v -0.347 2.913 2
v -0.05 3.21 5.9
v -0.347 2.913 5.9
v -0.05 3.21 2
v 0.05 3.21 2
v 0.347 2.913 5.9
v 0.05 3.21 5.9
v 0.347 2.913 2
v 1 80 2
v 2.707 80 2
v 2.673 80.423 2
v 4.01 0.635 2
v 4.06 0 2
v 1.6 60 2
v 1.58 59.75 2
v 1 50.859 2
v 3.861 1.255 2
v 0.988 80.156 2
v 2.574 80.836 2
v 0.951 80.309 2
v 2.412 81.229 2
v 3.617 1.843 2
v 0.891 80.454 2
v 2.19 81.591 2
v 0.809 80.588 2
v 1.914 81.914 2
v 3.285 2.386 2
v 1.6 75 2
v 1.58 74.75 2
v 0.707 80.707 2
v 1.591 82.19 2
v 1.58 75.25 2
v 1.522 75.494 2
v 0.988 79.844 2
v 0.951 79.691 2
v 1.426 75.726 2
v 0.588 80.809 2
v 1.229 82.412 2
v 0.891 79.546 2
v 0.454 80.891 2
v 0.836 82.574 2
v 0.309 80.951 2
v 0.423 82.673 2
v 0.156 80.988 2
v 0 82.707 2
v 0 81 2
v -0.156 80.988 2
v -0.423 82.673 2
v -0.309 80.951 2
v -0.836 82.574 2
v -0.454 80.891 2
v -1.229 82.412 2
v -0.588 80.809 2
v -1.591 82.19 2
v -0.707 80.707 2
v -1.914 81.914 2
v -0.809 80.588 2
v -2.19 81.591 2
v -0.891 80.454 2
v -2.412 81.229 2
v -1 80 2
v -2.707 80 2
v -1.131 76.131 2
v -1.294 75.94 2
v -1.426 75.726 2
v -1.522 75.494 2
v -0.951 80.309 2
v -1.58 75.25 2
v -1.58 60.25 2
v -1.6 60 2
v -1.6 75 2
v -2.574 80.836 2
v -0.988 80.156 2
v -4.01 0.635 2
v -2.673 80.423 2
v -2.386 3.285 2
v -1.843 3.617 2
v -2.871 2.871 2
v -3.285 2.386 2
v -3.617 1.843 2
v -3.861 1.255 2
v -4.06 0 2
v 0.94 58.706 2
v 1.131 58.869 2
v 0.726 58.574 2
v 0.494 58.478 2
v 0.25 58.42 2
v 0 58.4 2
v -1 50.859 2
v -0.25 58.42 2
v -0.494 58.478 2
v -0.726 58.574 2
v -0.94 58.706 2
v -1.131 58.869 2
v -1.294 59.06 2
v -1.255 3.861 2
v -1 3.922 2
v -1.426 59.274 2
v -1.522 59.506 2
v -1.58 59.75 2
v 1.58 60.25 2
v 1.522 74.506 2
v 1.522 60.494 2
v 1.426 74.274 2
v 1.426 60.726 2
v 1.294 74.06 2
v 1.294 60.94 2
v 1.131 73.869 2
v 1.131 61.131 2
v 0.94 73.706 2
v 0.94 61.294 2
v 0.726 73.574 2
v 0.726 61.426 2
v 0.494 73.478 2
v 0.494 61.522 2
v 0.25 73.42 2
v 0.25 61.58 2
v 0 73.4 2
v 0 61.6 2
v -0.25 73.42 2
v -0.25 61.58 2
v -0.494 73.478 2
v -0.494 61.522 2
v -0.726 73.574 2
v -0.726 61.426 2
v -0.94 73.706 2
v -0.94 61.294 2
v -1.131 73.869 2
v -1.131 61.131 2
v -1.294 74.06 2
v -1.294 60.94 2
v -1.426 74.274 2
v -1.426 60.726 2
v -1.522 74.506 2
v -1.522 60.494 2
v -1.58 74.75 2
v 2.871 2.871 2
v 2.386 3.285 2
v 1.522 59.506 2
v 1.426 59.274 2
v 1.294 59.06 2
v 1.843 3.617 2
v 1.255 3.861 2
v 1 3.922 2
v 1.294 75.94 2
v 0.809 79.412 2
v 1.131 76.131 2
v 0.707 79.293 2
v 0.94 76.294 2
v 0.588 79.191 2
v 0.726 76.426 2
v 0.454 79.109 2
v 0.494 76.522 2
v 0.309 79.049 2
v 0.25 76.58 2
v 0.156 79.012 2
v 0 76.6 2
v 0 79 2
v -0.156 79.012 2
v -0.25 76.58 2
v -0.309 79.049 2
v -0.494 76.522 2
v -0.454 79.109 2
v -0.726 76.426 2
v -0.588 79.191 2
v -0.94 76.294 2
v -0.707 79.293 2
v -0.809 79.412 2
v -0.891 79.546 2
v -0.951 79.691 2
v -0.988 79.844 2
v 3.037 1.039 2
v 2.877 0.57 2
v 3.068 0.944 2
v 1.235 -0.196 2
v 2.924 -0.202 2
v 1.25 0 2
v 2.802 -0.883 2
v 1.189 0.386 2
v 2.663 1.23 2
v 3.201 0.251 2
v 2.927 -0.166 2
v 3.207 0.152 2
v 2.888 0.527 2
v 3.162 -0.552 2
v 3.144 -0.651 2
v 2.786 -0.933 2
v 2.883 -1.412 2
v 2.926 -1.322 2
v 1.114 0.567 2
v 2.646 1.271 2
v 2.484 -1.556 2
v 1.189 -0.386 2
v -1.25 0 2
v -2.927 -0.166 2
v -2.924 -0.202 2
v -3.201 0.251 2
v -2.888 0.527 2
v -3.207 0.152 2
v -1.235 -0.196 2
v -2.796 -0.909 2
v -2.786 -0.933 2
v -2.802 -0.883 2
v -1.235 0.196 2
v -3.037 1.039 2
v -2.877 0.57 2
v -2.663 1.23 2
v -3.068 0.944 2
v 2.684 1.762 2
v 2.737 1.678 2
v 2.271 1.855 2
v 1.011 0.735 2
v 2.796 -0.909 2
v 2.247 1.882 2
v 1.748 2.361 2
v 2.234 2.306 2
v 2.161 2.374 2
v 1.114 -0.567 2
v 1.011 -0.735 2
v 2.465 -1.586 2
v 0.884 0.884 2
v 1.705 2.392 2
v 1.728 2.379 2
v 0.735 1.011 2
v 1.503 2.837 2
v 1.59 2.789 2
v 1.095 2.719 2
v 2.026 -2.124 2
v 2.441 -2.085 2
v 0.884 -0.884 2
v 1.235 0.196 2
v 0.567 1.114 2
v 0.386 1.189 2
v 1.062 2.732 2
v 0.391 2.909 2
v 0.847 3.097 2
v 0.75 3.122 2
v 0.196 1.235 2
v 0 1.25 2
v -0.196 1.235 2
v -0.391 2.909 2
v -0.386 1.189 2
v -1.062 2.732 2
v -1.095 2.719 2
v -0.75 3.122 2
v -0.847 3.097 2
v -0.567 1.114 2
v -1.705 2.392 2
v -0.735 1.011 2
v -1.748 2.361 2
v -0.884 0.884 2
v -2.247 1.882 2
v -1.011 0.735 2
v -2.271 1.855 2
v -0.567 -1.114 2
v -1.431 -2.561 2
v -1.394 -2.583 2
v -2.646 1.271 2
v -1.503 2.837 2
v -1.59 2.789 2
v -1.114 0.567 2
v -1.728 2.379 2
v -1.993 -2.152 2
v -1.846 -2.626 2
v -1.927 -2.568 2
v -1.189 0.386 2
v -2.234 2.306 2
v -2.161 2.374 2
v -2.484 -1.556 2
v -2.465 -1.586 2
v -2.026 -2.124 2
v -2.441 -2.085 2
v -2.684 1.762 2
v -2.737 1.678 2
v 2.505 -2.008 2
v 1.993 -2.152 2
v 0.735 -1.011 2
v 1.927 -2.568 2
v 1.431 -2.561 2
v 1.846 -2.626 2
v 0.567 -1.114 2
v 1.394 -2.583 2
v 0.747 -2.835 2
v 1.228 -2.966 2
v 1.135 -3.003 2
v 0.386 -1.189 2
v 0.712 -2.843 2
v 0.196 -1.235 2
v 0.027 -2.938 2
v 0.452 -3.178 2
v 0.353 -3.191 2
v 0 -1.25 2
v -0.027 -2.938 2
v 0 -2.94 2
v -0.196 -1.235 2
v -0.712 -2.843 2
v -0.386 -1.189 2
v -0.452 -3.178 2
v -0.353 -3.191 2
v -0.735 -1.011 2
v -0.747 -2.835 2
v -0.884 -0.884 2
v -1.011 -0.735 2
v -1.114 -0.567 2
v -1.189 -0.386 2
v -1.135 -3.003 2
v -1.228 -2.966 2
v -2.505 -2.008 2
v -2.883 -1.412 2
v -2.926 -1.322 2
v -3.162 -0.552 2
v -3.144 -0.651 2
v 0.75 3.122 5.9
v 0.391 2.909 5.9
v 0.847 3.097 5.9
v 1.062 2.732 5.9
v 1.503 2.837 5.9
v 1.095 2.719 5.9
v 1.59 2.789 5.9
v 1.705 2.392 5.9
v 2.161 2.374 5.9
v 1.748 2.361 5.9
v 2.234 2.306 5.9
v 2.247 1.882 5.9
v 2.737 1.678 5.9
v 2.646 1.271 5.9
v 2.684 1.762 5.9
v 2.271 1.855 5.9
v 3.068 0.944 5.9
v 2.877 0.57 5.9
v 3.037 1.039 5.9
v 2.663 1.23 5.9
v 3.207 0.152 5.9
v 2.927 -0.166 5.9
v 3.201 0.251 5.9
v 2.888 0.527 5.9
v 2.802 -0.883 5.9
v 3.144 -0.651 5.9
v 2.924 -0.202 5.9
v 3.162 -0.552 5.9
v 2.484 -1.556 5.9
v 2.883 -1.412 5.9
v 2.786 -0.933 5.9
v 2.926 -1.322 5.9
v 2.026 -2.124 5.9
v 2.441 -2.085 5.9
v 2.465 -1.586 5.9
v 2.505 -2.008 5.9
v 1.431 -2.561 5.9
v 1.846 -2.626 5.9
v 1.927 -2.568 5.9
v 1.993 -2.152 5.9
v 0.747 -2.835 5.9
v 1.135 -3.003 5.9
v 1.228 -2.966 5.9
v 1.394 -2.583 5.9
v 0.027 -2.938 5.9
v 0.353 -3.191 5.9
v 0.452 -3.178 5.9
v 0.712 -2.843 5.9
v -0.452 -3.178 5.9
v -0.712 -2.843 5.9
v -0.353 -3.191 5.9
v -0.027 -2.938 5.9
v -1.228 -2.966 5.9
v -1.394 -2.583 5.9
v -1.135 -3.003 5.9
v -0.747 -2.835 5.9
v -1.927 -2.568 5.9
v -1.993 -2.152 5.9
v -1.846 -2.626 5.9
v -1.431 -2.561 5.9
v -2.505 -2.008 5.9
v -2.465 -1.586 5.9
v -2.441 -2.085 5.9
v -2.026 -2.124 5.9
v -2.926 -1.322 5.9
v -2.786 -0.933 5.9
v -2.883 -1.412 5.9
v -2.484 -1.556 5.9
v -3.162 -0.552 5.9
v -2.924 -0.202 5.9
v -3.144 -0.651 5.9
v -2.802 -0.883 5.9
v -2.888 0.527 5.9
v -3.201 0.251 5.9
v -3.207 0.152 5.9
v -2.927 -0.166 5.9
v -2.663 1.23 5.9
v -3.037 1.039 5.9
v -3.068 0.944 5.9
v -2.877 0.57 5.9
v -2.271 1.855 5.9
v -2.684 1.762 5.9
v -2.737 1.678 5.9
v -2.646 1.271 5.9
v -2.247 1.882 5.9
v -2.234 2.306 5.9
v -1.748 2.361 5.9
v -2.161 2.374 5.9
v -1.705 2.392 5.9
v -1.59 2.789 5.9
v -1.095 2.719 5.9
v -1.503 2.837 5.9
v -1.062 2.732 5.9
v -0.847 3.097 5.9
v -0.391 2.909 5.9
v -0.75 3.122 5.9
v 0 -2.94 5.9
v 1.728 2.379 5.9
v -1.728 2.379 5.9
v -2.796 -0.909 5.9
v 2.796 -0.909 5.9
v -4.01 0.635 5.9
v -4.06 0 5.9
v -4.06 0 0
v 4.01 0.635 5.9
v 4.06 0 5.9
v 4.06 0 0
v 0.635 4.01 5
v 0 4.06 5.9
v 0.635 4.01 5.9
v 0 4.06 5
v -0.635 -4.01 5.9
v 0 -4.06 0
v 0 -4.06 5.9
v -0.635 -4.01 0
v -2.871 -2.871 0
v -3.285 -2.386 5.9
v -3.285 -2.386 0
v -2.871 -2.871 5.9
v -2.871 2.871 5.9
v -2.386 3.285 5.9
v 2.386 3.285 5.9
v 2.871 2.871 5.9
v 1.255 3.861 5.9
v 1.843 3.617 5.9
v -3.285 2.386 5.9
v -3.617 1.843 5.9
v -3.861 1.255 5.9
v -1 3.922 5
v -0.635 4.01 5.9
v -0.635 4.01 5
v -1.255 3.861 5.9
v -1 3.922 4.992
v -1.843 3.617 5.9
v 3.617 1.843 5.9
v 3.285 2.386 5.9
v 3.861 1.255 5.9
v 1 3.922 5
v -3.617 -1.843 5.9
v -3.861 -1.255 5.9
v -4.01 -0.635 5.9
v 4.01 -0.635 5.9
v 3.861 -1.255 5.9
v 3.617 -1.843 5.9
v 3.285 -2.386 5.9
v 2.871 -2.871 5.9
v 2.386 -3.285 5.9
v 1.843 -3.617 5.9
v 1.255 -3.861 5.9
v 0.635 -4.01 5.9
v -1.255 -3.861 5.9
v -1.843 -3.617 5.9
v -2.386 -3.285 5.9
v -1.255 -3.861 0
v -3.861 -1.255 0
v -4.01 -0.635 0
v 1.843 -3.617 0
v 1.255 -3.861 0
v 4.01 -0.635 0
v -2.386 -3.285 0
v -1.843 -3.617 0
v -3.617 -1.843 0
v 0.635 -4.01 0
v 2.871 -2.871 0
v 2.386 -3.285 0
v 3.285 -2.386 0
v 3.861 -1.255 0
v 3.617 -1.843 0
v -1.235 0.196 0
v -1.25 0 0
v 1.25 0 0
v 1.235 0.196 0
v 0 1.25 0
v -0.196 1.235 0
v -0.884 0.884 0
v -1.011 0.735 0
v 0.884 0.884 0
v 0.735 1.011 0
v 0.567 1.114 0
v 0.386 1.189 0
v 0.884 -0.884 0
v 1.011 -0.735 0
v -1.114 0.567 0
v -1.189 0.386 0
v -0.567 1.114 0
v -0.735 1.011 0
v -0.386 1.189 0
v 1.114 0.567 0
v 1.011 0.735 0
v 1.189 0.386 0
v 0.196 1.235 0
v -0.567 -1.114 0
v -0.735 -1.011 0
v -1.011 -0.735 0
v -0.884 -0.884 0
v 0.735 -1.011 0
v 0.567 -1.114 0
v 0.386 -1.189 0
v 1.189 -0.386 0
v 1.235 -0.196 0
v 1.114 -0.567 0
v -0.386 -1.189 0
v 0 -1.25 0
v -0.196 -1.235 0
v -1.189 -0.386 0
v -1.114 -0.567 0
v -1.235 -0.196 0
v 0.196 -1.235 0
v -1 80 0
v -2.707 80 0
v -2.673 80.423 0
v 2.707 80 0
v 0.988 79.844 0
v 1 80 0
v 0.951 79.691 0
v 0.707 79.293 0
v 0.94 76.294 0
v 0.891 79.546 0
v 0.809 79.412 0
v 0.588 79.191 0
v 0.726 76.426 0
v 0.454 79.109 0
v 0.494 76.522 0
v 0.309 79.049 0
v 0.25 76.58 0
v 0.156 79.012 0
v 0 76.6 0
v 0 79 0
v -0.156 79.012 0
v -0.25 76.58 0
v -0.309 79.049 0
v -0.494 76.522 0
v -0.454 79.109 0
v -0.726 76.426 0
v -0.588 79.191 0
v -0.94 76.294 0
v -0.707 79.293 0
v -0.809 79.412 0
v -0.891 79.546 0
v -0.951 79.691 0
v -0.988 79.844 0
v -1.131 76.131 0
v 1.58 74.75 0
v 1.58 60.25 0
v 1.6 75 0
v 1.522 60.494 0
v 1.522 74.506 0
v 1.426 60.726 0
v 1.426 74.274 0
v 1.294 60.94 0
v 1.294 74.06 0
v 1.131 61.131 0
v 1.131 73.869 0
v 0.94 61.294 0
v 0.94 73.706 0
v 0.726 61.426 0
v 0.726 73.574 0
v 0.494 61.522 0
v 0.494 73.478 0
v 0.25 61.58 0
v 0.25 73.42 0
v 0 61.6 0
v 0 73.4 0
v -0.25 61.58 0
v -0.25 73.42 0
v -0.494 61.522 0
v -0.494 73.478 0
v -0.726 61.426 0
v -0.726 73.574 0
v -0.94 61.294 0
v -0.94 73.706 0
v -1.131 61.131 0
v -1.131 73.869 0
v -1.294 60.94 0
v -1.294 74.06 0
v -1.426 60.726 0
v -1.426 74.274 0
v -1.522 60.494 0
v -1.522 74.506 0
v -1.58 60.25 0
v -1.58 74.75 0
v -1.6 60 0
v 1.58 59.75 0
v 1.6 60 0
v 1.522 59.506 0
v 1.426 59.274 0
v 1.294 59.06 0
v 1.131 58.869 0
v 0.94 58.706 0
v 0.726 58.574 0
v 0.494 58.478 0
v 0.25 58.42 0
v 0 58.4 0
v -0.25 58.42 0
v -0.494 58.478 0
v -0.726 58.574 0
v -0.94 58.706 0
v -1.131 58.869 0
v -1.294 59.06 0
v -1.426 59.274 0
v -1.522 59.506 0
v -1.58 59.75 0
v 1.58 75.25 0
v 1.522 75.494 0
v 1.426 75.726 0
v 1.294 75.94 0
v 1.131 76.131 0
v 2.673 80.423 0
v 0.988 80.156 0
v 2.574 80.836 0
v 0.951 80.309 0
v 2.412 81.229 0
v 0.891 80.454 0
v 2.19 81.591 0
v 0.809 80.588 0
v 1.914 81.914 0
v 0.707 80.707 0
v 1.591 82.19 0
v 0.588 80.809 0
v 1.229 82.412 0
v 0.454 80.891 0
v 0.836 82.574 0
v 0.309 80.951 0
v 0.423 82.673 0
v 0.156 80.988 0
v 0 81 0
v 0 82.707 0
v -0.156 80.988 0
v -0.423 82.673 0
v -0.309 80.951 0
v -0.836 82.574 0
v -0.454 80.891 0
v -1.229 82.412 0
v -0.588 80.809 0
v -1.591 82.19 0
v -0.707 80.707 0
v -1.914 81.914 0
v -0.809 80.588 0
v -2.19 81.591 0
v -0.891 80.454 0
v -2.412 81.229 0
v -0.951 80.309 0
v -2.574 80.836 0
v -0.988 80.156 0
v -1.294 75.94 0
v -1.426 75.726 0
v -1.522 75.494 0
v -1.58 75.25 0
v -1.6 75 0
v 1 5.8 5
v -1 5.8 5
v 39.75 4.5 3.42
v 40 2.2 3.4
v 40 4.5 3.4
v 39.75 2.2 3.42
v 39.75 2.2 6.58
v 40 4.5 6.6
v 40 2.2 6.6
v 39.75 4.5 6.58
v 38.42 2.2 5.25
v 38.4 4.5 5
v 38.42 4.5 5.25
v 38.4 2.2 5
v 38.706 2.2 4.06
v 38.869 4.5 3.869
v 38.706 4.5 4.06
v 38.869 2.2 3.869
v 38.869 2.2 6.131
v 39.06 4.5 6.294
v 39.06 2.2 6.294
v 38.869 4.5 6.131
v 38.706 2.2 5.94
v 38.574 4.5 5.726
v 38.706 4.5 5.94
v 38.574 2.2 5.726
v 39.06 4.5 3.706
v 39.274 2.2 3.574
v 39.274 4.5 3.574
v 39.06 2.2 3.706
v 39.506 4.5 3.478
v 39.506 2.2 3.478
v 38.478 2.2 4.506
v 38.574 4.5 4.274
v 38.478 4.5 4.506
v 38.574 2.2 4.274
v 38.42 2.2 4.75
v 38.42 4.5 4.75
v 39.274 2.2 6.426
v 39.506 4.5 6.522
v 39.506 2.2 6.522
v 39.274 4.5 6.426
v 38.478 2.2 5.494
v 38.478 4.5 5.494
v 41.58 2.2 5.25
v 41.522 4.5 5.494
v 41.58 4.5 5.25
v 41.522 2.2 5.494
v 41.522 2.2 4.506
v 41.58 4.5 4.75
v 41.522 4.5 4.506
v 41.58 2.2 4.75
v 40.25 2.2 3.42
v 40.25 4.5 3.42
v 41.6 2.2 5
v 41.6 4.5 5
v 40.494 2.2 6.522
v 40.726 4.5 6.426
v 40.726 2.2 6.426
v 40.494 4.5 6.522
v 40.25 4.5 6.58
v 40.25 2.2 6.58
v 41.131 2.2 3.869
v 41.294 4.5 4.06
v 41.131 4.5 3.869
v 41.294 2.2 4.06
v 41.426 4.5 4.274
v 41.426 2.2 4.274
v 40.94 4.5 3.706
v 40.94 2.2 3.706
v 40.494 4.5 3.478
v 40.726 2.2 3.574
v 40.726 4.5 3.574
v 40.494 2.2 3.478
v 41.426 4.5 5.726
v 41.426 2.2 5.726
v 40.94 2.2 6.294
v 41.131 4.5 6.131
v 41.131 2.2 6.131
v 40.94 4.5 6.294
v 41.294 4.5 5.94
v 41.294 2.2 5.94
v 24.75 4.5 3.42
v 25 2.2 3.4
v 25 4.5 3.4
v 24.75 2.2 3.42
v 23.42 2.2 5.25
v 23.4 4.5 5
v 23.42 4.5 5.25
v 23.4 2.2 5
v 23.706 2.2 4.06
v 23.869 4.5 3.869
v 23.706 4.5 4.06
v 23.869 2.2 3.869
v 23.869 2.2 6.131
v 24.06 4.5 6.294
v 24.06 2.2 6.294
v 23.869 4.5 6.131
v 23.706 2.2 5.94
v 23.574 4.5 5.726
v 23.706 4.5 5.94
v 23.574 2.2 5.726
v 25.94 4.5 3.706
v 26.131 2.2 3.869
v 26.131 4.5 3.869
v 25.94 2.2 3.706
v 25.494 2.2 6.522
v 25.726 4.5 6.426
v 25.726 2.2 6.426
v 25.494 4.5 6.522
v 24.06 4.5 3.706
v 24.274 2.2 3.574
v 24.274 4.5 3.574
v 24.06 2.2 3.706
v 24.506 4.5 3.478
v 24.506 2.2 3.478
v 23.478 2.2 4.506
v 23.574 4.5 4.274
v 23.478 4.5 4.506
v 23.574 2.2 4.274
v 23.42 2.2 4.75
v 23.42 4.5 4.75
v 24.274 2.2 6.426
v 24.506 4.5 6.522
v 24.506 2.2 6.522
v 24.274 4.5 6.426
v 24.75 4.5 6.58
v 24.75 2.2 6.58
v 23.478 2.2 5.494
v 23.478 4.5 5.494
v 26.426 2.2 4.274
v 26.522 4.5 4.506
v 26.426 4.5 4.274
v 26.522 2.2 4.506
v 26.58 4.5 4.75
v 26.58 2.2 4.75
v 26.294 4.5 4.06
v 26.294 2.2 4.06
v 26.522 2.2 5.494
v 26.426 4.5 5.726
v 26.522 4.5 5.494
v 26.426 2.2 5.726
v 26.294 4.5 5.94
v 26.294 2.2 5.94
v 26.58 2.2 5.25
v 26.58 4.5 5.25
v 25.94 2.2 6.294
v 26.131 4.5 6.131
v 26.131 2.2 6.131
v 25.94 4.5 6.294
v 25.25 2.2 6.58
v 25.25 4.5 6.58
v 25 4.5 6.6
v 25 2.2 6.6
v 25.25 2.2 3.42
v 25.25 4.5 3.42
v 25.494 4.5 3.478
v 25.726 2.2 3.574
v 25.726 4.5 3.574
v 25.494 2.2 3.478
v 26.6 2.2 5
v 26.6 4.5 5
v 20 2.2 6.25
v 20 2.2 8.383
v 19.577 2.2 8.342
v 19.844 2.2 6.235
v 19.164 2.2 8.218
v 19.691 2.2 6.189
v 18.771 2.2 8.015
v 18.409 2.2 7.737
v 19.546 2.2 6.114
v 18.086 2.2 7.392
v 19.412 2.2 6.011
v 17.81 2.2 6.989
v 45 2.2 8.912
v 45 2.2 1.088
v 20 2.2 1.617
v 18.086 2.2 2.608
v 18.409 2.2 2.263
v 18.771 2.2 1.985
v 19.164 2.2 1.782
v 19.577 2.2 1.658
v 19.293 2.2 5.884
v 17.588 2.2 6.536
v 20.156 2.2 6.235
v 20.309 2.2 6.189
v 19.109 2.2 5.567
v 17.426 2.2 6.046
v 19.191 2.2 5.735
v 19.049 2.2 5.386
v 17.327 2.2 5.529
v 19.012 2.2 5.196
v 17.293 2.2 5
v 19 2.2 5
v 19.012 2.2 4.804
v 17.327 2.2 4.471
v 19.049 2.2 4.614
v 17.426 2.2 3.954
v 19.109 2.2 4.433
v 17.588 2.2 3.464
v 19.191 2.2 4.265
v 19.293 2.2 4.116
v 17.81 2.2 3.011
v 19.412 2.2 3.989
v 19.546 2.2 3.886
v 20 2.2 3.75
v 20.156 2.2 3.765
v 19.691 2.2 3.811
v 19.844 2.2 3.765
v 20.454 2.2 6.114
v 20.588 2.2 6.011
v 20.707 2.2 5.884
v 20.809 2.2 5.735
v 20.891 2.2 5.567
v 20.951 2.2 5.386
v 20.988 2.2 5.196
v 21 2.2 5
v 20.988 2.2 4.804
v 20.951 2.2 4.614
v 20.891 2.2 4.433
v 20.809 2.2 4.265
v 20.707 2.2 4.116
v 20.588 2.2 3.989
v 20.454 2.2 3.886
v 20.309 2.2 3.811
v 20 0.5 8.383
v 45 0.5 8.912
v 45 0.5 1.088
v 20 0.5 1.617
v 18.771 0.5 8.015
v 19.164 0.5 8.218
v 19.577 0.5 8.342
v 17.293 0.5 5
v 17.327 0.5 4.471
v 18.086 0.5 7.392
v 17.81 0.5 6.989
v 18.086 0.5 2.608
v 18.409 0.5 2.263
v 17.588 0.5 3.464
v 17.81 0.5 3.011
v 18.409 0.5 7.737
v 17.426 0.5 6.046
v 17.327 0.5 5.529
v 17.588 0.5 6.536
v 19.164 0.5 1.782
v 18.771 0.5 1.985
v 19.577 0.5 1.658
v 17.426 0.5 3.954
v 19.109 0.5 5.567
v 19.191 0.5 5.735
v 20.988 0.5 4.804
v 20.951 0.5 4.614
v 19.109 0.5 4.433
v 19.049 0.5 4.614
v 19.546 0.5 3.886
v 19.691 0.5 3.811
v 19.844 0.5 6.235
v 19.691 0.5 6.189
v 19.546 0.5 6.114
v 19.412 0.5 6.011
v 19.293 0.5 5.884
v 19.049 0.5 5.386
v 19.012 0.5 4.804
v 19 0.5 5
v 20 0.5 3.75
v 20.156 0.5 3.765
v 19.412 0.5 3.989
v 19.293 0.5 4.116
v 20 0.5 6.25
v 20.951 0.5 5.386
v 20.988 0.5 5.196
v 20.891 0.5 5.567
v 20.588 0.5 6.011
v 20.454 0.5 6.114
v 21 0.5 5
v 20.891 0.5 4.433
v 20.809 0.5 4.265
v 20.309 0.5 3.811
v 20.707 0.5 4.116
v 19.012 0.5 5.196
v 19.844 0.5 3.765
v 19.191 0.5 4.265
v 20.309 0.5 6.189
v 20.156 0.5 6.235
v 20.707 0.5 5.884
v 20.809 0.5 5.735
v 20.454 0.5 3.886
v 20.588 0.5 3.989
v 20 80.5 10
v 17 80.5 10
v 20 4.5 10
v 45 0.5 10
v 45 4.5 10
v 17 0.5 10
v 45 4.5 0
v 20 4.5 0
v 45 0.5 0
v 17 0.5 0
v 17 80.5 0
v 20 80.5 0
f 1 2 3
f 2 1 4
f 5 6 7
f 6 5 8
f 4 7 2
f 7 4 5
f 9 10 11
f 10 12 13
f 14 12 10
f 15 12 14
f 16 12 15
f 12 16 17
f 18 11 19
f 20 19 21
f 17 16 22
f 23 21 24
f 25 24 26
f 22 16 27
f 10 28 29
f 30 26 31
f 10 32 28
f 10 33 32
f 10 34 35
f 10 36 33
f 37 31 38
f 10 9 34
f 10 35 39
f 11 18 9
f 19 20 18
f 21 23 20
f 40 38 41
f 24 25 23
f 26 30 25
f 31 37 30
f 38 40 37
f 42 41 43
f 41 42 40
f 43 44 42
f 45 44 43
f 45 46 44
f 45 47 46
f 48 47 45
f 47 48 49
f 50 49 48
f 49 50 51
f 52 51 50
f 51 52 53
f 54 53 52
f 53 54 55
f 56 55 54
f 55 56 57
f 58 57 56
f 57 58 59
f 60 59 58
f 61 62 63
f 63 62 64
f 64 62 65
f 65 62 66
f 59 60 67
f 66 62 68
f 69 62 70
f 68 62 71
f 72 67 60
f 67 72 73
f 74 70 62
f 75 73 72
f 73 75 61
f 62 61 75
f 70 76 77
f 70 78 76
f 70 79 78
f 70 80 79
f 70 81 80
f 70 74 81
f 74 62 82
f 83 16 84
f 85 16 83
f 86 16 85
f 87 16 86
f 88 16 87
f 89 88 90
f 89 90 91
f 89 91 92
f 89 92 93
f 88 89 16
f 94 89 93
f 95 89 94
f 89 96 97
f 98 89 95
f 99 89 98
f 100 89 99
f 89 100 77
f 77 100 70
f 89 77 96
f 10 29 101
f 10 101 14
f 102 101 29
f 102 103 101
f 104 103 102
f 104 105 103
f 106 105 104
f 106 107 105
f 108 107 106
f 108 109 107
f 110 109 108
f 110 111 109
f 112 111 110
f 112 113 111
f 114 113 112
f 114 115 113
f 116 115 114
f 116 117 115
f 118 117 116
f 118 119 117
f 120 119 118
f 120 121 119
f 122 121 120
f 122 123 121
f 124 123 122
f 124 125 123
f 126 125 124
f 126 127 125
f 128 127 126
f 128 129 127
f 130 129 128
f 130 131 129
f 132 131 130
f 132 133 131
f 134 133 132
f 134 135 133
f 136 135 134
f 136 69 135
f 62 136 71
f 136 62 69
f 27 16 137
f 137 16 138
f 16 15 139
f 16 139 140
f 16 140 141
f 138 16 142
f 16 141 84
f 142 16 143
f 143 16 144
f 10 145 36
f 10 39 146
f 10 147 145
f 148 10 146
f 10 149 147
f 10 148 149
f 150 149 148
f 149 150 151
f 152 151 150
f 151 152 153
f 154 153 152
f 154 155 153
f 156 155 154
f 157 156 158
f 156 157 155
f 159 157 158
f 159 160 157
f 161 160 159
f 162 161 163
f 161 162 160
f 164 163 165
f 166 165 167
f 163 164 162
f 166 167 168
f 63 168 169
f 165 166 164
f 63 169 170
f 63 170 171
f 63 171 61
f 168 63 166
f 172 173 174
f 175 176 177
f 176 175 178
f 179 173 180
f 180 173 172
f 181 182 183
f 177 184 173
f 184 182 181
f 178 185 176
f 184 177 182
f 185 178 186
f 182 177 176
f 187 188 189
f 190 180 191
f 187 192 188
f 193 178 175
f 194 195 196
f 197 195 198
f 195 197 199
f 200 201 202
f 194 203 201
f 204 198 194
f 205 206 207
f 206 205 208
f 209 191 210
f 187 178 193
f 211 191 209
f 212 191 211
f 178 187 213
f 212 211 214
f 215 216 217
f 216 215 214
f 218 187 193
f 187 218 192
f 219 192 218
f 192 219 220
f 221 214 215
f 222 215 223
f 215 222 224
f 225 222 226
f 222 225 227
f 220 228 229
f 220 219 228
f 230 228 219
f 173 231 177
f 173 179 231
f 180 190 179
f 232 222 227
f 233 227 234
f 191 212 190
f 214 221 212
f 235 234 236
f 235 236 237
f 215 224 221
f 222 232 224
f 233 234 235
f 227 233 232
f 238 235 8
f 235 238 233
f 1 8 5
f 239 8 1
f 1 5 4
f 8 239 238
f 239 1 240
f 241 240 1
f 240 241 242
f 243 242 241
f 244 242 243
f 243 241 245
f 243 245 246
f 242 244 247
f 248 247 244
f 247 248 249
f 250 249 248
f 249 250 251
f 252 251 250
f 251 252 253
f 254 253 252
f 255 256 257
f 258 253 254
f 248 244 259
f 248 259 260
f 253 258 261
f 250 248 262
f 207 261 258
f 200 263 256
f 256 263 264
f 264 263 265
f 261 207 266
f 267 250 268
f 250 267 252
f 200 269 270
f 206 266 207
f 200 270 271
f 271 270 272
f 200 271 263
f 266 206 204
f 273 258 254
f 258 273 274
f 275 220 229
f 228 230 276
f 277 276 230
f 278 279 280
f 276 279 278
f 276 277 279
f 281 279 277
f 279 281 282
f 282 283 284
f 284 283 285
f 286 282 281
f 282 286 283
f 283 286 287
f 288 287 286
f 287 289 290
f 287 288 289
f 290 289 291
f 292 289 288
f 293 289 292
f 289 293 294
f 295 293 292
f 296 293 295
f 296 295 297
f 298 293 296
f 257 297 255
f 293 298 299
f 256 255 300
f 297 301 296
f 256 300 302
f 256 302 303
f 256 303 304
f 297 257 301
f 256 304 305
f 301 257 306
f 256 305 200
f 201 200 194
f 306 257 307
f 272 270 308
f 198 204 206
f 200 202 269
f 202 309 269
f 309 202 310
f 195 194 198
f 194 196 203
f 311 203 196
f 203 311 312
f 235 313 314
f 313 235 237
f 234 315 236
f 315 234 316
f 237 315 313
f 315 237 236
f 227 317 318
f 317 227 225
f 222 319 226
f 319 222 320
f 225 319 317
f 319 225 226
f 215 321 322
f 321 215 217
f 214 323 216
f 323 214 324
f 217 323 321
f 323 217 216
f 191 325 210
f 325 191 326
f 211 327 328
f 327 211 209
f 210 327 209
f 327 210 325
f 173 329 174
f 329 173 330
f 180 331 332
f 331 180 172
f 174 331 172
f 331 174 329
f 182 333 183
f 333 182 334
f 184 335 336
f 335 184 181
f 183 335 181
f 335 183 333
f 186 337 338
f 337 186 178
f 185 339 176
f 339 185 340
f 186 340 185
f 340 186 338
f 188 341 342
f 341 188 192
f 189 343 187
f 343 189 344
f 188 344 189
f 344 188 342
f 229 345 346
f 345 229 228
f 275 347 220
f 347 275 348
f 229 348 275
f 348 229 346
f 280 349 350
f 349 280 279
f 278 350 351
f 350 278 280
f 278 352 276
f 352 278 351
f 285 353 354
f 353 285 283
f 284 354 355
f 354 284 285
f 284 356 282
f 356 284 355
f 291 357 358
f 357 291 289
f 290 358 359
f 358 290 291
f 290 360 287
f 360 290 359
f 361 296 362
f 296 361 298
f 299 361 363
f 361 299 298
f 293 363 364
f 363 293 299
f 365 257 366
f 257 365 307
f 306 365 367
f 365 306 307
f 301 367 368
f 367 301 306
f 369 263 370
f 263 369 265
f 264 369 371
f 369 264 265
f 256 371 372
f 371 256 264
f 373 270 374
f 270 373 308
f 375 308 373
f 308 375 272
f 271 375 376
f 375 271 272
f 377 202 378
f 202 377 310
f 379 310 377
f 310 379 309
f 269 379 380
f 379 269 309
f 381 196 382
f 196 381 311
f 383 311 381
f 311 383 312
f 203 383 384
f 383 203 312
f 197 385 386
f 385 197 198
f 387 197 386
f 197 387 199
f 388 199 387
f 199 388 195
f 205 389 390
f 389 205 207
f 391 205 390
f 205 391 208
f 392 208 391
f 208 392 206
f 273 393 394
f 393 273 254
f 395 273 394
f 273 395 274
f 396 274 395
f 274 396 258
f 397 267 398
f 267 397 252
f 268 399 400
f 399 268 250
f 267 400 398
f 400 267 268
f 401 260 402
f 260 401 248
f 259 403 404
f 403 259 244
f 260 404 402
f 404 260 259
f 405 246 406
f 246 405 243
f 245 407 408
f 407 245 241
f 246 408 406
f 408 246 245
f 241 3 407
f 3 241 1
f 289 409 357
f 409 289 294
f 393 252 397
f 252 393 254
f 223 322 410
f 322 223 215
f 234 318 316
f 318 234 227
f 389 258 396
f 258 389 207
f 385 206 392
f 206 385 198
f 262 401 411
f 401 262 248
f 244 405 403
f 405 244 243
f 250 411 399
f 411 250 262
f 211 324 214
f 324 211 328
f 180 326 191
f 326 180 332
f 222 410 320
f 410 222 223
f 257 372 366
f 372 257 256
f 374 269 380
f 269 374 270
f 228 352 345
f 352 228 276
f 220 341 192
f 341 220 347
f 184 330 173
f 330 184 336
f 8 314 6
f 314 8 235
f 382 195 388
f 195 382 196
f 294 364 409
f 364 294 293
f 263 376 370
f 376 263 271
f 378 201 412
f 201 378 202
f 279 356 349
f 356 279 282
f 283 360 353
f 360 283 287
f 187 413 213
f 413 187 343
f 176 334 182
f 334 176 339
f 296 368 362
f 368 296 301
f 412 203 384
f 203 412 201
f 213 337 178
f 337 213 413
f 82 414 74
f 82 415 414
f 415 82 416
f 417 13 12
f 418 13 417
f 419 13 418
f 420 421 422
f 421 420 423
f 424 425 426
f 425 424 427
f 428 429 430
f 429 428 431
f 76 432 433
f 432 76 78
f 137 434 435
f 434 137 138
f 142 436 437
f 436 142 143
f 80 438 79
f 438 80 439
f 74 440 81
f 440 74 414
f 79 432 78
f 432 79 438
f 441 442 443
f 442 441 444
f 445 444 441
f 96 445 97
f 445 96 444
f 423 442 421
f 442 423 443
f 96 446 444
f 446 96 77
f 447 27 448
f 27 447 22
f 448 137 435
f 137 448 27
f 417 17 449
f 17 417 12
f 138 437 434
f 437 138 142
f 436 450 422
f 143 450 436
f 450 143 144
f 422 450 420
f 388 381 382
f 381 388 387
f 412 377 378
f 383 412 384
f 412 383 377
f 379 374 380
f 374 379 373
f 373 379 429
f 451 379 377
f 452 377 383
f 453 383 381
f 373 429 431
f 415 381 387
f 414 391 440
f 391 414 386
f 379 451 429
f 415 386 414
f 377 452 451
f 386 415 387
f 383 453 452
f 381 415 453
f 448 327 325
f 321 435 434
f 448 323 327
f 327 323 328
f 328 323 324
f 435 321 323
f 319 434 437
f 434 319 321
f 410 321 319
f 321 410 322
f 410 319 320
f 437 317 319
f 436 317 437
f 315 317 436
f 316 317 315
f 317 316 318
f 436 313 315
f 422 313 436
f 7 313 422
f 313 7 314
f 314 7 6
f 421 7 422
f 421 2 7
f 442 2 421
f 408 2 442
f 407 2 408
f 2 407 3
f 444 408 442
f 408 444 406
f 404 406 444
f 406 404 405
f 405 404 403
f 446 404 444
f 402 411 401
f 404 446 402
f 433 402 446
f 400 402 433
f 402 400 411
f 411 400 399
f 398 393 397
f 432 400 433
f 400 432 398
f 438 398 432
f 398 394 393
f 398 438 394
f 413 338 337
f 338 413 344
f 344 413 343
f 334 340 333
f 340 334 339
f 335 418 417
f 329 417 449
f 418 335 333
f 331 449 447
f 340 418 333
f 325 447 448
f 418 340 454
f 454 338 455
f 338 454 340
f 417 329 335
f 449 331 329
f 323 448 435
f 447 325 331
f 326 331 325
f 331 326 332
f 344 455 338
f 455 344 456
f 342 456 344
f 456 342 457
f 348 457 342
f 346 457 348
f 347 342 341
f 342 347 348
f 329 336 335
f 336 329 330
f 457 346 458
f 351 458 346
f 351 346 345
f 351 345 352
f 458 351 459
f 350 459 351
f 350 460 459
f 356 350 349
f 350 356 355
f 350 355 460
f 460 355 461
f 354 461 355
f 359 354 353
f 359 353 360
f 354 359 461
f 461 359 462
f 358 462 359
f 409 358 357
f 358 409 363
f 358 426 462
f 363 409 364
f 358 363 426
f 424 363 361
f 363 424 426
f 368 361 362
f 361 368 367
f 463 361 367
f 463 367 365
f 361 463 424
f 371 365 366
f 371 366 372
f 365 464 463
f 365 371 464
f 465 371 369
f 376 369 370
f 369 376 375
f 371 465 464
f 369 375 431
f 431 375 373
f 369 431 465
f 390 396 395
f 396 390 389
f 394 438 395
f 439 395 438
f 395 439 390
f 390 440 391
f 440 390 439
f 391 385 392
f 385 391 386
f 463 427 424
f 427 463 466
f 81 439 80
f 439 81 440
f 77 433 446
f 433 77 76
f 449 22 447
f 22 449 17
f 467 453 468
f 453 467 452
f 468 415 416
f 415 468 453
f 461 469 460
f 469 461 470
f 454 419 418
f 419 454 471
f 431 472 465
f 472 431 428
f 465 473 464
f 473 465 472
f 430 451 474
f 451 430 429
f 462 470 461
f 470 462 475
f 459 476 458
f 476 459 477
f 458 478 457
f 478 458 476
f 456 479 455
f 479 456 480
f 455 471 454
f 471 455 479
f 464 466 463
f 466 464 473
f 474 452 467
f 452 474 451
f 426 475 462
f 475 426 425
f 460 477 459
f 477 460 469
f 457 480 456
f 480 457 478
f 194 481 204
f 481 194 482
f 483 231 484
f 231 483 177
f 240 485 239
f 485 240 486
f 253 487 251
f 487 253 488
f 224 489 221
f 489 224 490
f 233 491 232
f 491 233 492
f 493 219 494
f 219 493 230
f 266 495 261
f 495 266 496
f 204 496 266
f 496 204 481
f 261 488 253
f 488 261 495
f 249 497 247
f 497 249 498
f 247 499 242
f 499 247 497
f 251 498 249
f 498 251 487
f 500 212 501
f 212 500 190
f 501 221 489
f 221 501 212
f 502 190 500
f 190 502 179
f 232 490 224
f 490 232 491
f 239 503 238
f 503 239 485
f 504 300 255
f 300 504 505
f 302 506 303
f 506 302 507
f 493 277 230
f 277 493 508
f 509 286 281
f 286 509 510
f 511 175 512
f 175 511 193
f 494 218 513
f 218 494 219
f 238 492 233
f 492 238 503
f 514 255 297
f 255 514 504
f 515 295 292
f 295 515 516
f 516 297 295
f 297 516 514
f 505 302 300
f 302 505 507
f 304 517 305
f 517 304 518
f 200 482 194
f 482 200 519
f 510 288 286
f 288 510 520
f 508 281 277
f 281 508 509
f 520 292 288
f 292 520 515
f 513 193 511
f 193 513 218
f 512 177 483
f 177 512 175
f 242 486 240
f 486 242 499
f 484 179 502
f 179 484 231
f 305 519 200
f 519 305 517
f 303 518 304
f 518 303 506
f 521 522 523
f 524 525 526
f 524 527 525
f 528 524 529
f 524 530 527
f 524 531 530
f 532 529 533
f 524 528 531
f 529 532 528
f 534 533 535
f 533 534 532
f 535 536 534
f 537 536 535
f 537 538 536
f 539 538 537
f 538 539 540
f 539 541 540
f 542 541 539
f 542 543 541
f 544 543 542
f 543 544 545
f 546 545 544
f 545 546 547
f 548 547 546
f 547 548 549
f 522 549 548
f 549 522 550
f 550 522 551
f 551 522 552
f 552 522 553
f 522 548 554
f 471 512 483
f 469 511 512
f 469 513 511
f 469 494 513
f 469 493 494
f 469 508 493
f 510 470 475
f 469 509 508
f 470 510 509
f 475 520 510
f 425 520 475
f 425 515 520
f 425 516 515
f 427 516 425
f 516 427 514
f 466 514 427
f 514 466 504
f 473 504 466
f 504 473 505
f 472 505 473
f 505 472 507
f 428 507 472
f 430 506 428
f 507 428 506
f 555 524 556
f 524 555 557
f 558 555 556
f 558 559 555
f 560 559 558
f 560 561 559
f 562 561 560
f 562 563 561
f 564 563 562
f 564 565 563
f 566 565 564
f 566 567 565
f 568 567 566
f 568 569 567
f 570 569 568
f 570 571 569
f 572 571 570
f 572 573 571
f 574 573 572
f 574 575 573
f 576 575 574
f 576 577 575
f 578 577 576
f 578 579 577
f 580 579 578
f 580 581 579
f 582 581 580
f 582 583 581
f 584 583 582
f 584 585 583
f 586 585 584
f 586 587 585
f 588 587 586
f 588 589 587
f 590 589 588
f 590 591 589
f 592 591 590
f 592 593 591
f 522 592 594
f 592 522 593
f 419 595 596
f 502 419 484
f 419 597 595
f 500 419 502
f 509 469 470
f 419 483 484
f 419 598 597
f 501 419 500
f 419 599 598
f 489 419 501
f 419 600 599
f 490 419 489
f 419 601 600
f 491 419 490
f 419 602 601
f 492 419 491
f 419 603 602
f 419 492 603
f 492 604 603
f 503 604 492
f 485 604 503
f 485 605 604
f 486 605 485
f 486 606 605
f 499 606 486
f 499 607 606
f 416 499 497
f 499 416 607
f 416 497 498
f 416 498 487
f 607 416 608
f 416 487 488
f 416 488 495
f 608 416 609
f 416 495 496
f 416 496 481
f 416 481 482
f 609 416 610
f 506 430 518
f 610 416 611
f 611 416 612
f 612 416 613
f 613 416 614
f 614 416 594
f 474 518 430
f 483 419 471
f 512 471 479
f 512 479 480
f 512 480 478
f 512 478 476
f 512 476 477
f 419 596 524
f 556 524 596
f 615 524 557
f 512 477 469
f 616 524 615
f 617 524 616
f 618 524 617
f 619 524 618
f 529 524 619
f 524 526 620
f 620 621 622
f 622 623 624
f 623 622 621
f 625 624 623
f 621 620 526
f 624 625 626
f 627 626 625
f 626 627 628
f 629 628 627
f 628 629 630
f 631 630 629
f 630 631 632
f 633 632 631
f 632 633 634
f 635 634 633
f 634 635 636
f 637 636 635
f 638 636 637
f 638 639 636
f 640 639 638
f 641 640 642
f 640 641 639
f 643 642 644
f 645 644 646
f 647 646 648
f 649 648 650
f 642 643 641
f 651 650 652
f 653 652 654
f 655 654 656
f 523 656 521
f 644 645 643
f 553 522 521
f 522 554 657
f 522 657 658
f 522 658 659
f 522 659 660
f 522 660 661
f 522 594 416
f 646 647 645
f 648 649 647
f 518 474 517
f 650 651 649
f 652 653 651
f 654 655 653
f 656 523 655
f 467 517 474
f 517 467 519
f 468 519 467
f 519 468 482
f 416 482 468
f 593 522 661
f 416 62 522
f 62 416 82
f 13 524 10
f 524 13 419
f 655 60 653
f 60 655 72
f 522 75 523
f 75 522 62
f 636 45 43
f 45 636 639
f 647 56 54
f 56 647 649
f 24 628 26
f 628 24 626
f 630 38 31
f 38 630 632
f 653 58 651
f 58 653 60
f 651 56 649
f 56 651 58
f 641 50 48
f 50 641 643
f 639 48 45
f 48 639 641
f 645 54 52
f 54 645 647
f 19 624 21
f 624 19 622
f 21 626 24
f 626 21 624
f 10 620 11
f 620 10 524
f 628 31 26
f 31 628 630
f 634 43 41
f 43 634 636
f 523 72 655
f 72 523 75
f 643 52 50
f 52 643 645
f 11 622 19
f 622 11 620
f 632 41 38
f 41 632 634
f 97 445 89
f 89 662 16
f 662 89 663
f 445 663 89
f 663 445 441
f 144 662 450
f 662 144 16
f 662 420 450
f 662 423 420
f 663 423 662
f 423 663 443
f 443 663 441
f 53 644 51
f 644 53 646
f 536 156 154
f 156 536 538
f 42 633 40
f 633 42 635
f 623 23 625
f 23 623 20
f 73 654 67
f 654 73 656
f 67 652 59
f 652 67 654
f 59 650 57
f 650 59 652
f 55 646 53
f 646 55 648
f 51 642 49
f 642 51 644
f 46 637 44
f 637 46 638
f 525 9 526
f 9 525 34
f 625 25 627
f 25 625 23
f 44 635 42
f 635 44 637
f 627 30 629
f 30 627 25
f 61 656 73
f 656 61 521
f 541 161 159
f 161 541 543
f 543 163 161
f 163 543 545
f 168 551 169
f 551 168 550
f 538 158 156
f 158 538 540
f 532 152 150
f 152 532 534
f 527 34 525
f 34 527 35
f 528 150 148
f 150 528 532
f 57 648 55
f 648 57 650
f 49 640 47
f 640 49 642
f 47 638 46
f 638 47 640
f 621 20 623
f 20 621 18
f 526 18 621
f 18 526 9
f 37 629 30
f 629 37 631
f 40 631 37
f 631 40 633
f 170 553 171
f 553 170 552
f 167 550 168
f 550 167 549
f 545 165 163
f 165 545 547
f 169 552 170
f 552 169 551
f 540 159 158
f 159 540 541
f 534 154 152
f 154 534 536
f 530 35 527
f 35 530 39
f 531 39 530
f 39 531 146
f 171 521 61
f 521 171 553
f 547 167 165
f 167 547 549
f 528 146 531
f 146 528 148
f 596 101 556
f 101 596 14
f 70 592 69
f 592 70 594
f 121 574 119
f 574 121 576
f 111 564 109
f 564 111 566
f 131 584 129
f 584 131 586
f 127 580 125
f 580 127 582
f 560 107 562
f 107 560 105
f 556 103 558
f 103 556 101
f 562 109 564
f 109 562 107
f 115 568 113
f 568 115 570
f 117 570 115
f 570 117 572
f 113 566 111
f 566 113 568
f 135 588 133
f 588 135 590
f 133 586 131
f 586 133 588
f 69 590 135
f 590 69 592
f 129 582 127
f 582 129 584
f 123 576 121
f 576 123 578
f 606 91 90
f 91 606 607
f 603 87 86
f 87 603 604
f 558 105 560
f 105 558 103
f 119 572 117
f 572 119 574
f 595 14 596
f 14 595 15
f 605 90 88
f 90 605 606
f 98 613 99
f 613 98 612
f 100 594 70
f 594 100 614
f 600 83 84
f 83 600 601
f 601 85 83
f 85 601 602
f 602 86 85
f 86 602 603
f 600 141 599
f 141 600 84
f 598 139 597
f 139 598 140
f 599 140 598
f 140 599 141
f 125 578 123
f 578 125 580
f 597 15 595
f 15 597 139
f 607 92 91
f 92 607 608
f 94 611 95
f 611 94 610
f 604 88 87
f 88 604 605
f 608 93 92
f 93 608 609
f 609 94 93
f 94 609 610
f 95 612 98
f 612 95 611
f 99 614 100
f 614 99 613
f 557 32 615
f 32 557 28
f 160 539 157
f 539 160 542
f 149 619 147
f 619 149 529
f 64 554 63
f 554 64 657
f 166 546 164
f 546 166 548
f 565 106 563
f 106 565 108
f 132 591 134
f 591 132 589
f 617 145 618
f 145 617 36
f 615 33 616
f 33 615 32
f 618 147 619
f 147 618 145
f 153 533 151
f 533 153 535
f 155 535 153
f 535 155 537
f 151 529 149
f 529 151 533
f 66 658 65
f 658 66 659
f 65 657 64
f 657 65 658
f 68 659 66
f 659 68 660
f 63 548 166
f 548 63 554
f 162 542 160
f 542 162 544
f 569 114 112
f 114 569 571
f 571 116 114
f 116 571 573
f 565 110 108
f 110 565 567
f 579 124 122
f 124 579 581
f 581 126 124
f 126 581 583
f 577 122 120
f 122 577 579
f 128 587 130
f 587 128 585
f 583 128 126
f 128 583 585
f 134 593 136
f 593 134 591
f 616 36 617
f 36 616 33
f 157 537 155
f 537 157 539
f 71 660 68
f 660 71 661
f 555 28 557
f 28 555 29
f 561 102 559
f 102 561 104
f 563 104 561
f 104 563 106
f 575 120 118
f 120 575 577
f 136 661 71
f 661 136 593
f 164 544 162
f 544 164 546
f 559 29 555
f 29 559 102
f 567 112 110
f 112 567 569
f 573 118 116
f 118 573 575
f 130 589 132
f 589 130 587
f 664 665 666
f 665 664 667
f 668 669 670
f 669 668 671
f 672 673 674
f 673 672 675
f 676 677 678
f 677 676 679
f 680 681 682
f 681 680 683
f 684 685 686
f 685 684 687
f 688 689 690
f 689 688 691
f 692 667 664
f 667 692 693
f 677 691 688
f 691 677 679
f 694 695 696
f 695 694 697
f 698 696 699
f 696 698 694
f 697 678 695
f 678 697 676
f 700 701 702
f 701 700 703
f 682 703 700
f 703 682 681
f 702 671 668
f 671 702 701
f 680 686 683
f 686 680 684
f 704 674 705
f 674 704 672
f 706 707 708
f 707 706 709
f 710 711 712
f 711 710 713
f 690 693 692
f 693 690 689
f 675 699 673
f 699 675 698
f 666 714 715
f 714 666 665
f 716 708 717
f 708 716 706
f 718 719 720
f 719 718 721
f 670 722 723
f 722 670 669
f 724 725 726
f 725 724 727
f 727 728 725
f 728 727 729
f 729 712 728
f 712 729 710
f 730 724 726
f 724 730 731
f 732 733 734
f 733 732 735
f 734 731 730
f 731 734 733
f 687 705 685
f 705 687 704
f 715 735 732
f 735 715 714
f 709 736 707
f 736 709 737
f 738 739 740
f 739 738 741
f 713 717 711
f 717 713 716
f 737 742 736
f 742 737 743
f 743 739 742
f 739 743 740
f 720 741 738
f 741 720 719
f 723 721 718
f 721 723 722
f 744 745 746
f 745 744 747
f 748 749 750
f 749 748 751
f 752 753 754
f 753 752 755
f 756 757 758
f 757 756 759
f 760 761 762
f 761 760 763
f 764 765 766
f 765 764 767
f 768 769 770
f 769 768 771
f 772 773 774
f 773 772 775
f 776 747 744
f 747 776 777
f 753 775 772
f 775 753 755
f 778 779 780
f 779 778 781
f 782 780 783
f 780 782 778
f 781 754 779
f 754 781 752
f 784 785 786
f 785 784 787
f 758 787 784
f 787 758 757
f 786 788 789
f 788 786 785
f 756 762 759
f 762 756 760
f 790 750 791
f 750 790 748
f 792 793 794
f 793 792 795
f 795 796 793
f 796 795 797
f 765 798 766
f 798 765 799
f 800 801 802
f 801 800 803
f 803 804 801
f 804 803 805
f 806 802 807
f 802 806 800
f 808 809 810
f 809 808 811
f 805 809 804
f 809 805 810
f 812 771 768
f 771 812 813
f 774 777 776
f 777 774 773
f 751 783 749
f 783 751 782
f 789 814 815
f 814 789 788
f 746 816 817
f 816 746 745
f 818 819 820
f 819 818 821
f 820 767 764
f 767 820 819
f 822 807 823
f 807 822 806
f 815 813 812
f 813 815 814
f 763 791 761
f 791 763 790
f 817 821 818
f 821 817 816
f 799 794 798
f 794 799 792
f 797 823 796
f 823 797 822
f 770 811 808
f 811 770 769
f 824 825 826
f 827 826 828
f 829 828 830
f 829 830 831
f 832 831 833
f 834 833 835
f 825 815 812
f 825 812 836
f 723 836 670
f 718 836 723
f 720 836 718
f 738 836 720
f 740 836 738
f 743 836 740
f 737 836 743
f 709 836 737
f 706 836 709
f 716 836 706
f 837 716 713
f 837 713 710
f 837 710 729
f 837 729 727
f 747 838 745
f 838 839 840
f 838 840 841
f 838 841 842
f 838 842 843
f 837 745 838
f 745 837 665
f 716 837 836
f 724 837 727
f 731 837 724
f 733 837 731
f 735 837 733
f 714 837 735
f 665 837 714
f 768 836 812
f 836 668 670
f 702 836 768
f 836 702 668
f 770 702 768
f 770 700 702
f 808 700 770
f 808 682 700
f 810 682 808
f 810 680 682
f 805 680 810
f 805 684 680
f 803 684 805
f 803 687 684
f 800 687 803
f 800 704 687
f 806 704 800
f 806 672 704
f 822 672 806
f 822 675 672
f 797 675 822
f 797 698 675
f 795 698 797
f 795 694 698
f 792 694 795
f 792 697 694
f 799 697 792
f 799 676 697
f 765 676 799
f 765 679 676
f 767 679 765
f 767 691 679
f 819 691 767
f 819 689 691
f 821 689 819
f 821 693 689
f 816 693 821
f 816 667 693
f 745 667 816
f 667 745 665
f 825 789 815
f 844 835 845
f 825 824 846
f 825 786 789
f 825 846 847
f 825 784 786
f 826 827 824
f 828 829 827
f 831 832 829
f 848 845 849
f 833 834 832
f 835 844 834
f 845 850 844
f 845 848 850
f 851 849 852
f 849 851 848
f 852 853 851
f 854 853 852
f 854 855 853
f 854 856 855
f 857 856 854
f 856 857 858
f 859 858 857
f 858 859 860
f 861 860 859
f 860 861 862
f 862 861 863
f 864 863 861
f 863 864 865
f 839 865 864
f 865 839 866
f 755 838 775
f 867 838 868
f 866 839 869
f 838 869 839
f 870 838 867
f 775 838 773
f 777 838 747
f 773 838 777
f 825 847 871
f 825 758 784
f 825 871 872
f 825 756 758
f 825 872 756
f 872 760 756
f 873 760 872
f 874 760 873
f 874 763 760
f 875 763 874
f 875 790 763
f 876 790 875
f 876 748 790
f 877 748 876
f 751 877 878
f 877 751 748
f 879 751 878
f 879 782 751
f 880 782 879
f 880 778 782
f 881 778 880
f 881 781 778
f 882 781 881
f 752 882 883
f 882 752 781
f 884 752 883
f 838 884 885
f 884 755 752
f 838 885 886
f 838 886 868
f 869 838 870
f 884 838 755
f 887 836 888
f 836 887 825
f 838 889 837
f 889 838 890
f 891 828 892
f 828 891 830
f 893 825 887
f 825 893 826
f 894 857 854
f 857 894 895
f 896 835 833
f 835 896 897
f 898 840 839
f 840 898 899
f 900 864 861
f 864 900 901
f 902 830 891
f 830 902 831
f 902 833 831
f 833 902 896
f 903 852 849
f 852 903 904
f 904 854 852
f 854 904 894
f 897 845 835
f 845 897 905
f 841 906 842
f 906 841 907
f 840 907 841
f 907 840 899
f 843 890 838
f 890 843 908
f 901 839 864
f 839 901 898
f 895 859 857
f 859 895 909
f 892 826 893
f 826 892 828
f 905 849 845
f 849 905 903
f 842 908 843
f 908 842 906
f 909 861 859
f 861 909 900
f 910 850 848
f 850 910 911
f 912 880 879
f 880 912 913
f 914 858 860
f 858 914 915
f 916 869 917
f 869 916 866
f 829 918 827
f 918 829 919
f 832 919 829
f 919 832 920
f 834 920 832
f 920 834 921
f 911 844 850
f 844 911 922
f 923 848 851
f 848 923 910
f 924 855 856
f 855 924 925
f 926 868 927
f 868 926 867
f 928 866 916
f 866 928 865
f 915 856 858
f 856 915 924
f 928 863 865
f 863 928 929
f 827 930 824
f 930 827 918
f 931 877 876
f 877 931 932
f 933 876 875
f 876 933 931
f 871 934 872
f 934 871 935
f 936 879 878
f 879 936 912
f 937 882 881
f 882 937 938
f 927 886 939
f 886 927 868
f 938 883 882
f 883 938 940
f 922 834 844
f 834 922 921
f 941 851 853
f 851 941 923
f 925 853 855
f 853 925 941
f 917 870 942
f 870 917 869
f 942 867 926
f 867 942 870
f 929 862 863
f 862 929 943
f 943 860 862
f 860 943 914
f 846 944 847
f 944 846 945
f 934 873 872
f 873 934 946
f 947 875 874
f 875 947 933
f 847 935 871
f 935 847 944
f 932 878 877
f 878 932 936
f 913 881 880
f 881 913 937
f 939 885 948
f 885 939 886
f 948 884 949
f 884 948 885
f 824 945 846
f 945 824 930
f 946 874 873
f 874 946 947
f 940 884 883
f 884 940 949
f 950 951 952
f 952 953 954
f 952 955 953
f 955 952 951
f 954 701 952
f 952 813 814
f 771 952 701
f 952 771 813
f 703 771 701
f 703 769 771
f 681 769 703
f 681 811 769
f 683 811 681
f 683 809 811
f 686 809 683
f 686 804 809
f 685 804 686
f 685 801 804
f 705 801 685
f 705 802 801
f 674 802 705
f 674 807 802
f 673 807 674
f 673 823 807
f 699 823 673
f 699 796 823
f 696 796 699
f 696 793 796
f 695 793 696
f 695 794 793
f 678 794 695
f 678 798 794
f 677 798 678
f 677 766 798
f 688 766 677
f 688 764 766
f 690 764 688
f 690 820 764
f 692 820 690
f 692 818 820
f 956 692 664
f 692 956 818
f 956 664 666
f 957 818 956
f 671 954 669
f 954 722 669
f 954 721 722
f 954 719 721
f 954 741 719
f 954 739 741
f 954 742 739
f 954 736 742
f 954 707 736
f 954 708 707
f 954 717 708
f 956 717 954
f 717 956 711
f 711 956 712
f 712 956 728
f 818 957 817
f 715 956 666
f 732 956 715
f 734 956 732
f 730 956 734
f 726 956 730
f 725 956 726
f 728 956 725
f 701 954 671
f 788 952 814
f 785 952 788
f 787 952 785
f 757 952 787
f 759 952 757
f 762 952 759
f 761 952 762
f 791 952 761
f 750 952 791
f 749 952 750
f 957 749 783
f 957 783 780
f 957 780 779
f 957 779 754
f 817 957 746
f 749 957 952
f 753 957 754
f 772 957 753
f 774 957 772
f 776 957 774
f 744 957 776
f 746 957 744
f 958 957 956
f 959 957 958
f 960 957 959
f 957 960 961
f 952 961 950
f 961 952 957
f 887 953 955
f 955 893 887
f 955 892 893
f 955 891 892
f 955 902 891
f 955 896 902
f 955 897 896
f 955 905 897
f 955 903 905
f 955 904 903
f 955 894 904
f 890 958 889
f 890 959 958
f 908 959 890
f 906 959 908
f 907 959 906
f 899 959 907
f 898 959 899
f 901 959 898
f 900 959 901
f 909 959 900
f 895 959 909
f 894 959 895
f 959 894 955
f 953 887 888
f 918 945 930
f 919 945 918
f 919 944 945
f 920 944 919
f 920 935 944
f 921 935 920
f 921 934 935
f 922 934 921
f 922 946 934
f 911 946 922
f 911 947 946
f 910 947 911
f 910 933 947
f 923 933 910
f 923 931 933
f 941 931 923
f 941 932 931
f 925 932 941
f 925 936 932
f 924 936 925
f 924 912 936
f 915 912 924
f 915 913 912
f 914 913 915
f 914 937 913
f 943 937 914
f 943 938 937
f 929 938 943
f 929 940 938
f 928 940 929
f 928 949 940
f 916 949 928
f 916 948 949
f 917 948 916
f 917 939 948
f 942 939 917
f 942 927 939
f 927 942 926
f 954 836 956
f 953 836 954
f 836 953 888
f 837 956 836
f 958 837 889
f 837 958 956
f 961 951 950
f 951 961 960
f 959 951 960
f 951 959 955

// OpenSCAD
// file: servo_arm.scad
/**
 *  Parametric servo arm generator for OpenScad
 *  Générateur de palonnier de servo pour OpenScad
 *
 *  Copyright (c) 2012 Charles Rincheval.  All rights reserved.
 *
 *  This library is free software; you can redistribute it and/or
 *  modify it under the terms of the GNU Lesser General Public
 *  License as published by the Free Software Foundation; either
 *  version 2.1 of the License, or (at your option) any later version.
 *
 *  This library is distributed in the hope that it will be useful,
 *  but WITHOUT ANY WARRANTY; without even the implied warranty of
 *  MERCHANTABILITY or FITNESS FOR A PARTICULAR PURPOSE.  See the GNU
 *  Lesser General Public License for more details.
 *
 *  You should have received a copy of the GNU Lesser General Public
 *  License along with this library; if not, write to the Free Software
 *  Foundation, Inc., 51 Franklin St, Fifth Floor, Boston, MA  02110-1301  USA
 *
 *  Last update :
 *  https://github.com/hugokernel/OpenSCAD_ServoArms
 *
 *  http://www.digitalspirit.org/
 */

arm_length = 80;

arm_count = 1; // [1,2,3,4,5,6,7,8]

//  Clear between arm head and servo head (PLA: 0.3, ABS 0.2)
SERVO_HEAD_CLEAR = 0.25; // [0.2,0.3,0.4,0.5]

$fn = 40 / 1;

/**
 *  Head / Tooth parameters
 *  Futaba 3F Standard Spline
 *  http://www.servocity.com/html/futaba_servo_splines.html
 *
 *  First array (head related) :
 *  0. Head external diameter
 *  1. Head heigth
 *  2. Head thickness
 *  3. Head screw diameter
 *
 *  Second array (tooth related) :
 *  0. Tooth count
 *  1. Tooth height
 *  2. Tooth length
 *  3. Tooth width
 */
FUTABA_3F_SPLINE = [
    [5.92, 4, 1.1, 2.5],
    [25, 0.3, 0.7, 0.1]
];

module servo_futaba_3f(length, count) {
    servo_arm(FUTABA_3F_SPLINE, [length, count]);
}

/**
 *  If you want to support a new servo, juste add a new spline definition array
 *  and a module named like servo_XXX_YYY where XXX is servo brand and YYY is the
 *  connection type (3f) or the servo type (s3003)
 */

module servo_standard(length, count) {
    servo_futaba_3f(length, count);
}

/**
 *  Tooth
 *
 *    |<-w->|
 *    |_____|___
 *    /     \  ^h
 *  _/       \_v
 *   |<--l-->|
 *
 *  - tooth length (l)
 *  - tooth width (w)
 *  - tooth height (h)
 *  - height
 *
 */
module servo_head_tooth(length, width, height, head_height) {
    linear_extrude(height = head_height) {
        polygon([[-length / 2, 0], [-width / 2, height], [width / 2, height], [length / 2,0]]);
    }
}

/**
 *  Servo head
 */
module servo_head(params, clear = SERVO_HEAD_CLEAR) {

    head = params[0];
    tooth = params[1];

    head_diameter = head[0];
    head_heigth = head[1];

    tooth_count = tooth[0];
    tooth_height = tooth[1];
    tooth_length = tooth[2];
    tooth_width = tooth[3];

    % cylinder(r = head_diameter / 2, h = head_heigth + 1);

    cylinder(r = head_diameter / 2 - tooth_height + 0.03 + clear, h = head_heigth);

    for (i = [0 : tooth_count]) {
        rotate([0, 0, i * (360 / tooth_count)]) {
            translate([0, head_diameter / 2 - tooth_height + clear, 0]) {
                servo_head_tooth(tooth_length, tooth_width, tooth_height, head_heigth);
            }
        }
    }
}

/**
 *  Servo hold
 *  - Head / Tooth parameters
 *  - Arms params (length and count)
 */
module servo_arm(params, arms) {

    head = params[0];
    tooth = params[1];

    head_diameter = head[0];
    head_heigth = head[1];
    head_thickness = head[2];
    head_screw_diameter = head[3];

    tooth_length = tooth[2];
    tooth_width = tooth[3];

    arm_length = arms[0];
    arm_count = arms[1];

    /**
     *  Servo arm
     *  - length is from center to last hole
     */
    module arm(tooth_length, tooth_width, head_height, head_heigth, hole_count = 1) {

        arm_screw_diameter = 2;

        difference() {
            union() {
                cylinder(r = tooth_width / 2, h = head_heigth);

                linear_extrude(height = head_heigth) {
                    polygon([
                        [-tooth_width / 2, 0], [-tooth_width / 3, tooth_length],
                        [tooth_width / 3, tooth_length], [tooth_width / 2, 0]
                    ]);
                }

                translate([0, tooth_length, 0]) {
                    cylinder(r = tooth_width / 3, h = head_heigth);
                }

                if (tooth_length >= 12) {
                    translate([-head_heigth / 2 + 2, 3.8, -4]) {
                        rotate([90, 0, 0]) {
                            rotate([0, -90, 0]) {
                                linear_extrude(height = head_heigth) {
                                    polygon([
                                        [-tooth_length / 1.7, 4], [0, 4], [0, - head_height + 5],
                                        [-2, - head_height + 5]
                                    ]);
                                }
                            }
                        }
                    }
                }
            }

            // Hole
            for (i = [0 : hole_count - 1]) {
                //translate([0, length - (length / hole_count * i), -1]) {
                translate([0, tooth_length - (4 * i), -1]) {
                    cylinder(r = arm_screw_diameter / 2, h = 10);
                }
            }

            cylinder(r = head_screw_diameter / 2, h = 10);
        }
    }

    difference() {
        translate([0, 0, 0.1]) {
            cylinder(r = head_diameter / 2 + head_thickness, h = head_heigth + 1);
        }

        cylinder(r = head_screw_diameter / 2, h = 10);

        servo_head(params);
    }

    arm_thickness = head_thickness;

    // Arm
    translate([0, 0, head_heigth]) {
        for (i = [0 : arm_count - 1]) {
            rotate([0, 0, i * (360 / arm_count)]) {
                arm(arm_length, head_diameter + arm_thickness * 2, head_heigth, 2);
            }
        }
    }
}

module demo() {
    rotate([0, 180, 0])
        servo_standard(arm_length, arm_count);
}

demo();
// main file
use <servo_arm.scad>

arm_length = 80;

arm_count = 1; // [1,2,3,4,5,6,7,8]

//  Clear between arm head and servo head (PLA: 0.3, ABS 0.2)
SERVO_HEAD_CLEAR = 0.24; // [0.2,0.3,0.4,0.5]

$fn = 40 / 1;

module holes() {
    translate([0,60,-2]) {
        cylinder(h=20,d=3.2,center=false);
        translate([0,15,0]) {
            cylinder(h=20,d=3.2,center=false);
        }
    }
}

module modified_arm() {
    translate([0,0,6]) {
        demo();
    }
}

module arm_w_holes() {
    difference() {
    modified_arm();
    holes();
    }
}

module bar() {
    module bar_item() {
        translate([-5,55,0.5]) {
            translate([0,0,0]) {
                cube([10, 25, 4]);
            }
            translate([0,25,0]) {
                cube([10,3,80]);
            }
        }
    }
    
    difference() {
        bar_item();
        holes();
        scale([1.25,1.0,1.1]) {
            modified_arm();
        }
    }
}

arm_w_holes();
rotate([-90,0,0]) {
rotate([0,0,90]) {
    translate([-5,-100,0]) {
        bar();
    }
}
}
